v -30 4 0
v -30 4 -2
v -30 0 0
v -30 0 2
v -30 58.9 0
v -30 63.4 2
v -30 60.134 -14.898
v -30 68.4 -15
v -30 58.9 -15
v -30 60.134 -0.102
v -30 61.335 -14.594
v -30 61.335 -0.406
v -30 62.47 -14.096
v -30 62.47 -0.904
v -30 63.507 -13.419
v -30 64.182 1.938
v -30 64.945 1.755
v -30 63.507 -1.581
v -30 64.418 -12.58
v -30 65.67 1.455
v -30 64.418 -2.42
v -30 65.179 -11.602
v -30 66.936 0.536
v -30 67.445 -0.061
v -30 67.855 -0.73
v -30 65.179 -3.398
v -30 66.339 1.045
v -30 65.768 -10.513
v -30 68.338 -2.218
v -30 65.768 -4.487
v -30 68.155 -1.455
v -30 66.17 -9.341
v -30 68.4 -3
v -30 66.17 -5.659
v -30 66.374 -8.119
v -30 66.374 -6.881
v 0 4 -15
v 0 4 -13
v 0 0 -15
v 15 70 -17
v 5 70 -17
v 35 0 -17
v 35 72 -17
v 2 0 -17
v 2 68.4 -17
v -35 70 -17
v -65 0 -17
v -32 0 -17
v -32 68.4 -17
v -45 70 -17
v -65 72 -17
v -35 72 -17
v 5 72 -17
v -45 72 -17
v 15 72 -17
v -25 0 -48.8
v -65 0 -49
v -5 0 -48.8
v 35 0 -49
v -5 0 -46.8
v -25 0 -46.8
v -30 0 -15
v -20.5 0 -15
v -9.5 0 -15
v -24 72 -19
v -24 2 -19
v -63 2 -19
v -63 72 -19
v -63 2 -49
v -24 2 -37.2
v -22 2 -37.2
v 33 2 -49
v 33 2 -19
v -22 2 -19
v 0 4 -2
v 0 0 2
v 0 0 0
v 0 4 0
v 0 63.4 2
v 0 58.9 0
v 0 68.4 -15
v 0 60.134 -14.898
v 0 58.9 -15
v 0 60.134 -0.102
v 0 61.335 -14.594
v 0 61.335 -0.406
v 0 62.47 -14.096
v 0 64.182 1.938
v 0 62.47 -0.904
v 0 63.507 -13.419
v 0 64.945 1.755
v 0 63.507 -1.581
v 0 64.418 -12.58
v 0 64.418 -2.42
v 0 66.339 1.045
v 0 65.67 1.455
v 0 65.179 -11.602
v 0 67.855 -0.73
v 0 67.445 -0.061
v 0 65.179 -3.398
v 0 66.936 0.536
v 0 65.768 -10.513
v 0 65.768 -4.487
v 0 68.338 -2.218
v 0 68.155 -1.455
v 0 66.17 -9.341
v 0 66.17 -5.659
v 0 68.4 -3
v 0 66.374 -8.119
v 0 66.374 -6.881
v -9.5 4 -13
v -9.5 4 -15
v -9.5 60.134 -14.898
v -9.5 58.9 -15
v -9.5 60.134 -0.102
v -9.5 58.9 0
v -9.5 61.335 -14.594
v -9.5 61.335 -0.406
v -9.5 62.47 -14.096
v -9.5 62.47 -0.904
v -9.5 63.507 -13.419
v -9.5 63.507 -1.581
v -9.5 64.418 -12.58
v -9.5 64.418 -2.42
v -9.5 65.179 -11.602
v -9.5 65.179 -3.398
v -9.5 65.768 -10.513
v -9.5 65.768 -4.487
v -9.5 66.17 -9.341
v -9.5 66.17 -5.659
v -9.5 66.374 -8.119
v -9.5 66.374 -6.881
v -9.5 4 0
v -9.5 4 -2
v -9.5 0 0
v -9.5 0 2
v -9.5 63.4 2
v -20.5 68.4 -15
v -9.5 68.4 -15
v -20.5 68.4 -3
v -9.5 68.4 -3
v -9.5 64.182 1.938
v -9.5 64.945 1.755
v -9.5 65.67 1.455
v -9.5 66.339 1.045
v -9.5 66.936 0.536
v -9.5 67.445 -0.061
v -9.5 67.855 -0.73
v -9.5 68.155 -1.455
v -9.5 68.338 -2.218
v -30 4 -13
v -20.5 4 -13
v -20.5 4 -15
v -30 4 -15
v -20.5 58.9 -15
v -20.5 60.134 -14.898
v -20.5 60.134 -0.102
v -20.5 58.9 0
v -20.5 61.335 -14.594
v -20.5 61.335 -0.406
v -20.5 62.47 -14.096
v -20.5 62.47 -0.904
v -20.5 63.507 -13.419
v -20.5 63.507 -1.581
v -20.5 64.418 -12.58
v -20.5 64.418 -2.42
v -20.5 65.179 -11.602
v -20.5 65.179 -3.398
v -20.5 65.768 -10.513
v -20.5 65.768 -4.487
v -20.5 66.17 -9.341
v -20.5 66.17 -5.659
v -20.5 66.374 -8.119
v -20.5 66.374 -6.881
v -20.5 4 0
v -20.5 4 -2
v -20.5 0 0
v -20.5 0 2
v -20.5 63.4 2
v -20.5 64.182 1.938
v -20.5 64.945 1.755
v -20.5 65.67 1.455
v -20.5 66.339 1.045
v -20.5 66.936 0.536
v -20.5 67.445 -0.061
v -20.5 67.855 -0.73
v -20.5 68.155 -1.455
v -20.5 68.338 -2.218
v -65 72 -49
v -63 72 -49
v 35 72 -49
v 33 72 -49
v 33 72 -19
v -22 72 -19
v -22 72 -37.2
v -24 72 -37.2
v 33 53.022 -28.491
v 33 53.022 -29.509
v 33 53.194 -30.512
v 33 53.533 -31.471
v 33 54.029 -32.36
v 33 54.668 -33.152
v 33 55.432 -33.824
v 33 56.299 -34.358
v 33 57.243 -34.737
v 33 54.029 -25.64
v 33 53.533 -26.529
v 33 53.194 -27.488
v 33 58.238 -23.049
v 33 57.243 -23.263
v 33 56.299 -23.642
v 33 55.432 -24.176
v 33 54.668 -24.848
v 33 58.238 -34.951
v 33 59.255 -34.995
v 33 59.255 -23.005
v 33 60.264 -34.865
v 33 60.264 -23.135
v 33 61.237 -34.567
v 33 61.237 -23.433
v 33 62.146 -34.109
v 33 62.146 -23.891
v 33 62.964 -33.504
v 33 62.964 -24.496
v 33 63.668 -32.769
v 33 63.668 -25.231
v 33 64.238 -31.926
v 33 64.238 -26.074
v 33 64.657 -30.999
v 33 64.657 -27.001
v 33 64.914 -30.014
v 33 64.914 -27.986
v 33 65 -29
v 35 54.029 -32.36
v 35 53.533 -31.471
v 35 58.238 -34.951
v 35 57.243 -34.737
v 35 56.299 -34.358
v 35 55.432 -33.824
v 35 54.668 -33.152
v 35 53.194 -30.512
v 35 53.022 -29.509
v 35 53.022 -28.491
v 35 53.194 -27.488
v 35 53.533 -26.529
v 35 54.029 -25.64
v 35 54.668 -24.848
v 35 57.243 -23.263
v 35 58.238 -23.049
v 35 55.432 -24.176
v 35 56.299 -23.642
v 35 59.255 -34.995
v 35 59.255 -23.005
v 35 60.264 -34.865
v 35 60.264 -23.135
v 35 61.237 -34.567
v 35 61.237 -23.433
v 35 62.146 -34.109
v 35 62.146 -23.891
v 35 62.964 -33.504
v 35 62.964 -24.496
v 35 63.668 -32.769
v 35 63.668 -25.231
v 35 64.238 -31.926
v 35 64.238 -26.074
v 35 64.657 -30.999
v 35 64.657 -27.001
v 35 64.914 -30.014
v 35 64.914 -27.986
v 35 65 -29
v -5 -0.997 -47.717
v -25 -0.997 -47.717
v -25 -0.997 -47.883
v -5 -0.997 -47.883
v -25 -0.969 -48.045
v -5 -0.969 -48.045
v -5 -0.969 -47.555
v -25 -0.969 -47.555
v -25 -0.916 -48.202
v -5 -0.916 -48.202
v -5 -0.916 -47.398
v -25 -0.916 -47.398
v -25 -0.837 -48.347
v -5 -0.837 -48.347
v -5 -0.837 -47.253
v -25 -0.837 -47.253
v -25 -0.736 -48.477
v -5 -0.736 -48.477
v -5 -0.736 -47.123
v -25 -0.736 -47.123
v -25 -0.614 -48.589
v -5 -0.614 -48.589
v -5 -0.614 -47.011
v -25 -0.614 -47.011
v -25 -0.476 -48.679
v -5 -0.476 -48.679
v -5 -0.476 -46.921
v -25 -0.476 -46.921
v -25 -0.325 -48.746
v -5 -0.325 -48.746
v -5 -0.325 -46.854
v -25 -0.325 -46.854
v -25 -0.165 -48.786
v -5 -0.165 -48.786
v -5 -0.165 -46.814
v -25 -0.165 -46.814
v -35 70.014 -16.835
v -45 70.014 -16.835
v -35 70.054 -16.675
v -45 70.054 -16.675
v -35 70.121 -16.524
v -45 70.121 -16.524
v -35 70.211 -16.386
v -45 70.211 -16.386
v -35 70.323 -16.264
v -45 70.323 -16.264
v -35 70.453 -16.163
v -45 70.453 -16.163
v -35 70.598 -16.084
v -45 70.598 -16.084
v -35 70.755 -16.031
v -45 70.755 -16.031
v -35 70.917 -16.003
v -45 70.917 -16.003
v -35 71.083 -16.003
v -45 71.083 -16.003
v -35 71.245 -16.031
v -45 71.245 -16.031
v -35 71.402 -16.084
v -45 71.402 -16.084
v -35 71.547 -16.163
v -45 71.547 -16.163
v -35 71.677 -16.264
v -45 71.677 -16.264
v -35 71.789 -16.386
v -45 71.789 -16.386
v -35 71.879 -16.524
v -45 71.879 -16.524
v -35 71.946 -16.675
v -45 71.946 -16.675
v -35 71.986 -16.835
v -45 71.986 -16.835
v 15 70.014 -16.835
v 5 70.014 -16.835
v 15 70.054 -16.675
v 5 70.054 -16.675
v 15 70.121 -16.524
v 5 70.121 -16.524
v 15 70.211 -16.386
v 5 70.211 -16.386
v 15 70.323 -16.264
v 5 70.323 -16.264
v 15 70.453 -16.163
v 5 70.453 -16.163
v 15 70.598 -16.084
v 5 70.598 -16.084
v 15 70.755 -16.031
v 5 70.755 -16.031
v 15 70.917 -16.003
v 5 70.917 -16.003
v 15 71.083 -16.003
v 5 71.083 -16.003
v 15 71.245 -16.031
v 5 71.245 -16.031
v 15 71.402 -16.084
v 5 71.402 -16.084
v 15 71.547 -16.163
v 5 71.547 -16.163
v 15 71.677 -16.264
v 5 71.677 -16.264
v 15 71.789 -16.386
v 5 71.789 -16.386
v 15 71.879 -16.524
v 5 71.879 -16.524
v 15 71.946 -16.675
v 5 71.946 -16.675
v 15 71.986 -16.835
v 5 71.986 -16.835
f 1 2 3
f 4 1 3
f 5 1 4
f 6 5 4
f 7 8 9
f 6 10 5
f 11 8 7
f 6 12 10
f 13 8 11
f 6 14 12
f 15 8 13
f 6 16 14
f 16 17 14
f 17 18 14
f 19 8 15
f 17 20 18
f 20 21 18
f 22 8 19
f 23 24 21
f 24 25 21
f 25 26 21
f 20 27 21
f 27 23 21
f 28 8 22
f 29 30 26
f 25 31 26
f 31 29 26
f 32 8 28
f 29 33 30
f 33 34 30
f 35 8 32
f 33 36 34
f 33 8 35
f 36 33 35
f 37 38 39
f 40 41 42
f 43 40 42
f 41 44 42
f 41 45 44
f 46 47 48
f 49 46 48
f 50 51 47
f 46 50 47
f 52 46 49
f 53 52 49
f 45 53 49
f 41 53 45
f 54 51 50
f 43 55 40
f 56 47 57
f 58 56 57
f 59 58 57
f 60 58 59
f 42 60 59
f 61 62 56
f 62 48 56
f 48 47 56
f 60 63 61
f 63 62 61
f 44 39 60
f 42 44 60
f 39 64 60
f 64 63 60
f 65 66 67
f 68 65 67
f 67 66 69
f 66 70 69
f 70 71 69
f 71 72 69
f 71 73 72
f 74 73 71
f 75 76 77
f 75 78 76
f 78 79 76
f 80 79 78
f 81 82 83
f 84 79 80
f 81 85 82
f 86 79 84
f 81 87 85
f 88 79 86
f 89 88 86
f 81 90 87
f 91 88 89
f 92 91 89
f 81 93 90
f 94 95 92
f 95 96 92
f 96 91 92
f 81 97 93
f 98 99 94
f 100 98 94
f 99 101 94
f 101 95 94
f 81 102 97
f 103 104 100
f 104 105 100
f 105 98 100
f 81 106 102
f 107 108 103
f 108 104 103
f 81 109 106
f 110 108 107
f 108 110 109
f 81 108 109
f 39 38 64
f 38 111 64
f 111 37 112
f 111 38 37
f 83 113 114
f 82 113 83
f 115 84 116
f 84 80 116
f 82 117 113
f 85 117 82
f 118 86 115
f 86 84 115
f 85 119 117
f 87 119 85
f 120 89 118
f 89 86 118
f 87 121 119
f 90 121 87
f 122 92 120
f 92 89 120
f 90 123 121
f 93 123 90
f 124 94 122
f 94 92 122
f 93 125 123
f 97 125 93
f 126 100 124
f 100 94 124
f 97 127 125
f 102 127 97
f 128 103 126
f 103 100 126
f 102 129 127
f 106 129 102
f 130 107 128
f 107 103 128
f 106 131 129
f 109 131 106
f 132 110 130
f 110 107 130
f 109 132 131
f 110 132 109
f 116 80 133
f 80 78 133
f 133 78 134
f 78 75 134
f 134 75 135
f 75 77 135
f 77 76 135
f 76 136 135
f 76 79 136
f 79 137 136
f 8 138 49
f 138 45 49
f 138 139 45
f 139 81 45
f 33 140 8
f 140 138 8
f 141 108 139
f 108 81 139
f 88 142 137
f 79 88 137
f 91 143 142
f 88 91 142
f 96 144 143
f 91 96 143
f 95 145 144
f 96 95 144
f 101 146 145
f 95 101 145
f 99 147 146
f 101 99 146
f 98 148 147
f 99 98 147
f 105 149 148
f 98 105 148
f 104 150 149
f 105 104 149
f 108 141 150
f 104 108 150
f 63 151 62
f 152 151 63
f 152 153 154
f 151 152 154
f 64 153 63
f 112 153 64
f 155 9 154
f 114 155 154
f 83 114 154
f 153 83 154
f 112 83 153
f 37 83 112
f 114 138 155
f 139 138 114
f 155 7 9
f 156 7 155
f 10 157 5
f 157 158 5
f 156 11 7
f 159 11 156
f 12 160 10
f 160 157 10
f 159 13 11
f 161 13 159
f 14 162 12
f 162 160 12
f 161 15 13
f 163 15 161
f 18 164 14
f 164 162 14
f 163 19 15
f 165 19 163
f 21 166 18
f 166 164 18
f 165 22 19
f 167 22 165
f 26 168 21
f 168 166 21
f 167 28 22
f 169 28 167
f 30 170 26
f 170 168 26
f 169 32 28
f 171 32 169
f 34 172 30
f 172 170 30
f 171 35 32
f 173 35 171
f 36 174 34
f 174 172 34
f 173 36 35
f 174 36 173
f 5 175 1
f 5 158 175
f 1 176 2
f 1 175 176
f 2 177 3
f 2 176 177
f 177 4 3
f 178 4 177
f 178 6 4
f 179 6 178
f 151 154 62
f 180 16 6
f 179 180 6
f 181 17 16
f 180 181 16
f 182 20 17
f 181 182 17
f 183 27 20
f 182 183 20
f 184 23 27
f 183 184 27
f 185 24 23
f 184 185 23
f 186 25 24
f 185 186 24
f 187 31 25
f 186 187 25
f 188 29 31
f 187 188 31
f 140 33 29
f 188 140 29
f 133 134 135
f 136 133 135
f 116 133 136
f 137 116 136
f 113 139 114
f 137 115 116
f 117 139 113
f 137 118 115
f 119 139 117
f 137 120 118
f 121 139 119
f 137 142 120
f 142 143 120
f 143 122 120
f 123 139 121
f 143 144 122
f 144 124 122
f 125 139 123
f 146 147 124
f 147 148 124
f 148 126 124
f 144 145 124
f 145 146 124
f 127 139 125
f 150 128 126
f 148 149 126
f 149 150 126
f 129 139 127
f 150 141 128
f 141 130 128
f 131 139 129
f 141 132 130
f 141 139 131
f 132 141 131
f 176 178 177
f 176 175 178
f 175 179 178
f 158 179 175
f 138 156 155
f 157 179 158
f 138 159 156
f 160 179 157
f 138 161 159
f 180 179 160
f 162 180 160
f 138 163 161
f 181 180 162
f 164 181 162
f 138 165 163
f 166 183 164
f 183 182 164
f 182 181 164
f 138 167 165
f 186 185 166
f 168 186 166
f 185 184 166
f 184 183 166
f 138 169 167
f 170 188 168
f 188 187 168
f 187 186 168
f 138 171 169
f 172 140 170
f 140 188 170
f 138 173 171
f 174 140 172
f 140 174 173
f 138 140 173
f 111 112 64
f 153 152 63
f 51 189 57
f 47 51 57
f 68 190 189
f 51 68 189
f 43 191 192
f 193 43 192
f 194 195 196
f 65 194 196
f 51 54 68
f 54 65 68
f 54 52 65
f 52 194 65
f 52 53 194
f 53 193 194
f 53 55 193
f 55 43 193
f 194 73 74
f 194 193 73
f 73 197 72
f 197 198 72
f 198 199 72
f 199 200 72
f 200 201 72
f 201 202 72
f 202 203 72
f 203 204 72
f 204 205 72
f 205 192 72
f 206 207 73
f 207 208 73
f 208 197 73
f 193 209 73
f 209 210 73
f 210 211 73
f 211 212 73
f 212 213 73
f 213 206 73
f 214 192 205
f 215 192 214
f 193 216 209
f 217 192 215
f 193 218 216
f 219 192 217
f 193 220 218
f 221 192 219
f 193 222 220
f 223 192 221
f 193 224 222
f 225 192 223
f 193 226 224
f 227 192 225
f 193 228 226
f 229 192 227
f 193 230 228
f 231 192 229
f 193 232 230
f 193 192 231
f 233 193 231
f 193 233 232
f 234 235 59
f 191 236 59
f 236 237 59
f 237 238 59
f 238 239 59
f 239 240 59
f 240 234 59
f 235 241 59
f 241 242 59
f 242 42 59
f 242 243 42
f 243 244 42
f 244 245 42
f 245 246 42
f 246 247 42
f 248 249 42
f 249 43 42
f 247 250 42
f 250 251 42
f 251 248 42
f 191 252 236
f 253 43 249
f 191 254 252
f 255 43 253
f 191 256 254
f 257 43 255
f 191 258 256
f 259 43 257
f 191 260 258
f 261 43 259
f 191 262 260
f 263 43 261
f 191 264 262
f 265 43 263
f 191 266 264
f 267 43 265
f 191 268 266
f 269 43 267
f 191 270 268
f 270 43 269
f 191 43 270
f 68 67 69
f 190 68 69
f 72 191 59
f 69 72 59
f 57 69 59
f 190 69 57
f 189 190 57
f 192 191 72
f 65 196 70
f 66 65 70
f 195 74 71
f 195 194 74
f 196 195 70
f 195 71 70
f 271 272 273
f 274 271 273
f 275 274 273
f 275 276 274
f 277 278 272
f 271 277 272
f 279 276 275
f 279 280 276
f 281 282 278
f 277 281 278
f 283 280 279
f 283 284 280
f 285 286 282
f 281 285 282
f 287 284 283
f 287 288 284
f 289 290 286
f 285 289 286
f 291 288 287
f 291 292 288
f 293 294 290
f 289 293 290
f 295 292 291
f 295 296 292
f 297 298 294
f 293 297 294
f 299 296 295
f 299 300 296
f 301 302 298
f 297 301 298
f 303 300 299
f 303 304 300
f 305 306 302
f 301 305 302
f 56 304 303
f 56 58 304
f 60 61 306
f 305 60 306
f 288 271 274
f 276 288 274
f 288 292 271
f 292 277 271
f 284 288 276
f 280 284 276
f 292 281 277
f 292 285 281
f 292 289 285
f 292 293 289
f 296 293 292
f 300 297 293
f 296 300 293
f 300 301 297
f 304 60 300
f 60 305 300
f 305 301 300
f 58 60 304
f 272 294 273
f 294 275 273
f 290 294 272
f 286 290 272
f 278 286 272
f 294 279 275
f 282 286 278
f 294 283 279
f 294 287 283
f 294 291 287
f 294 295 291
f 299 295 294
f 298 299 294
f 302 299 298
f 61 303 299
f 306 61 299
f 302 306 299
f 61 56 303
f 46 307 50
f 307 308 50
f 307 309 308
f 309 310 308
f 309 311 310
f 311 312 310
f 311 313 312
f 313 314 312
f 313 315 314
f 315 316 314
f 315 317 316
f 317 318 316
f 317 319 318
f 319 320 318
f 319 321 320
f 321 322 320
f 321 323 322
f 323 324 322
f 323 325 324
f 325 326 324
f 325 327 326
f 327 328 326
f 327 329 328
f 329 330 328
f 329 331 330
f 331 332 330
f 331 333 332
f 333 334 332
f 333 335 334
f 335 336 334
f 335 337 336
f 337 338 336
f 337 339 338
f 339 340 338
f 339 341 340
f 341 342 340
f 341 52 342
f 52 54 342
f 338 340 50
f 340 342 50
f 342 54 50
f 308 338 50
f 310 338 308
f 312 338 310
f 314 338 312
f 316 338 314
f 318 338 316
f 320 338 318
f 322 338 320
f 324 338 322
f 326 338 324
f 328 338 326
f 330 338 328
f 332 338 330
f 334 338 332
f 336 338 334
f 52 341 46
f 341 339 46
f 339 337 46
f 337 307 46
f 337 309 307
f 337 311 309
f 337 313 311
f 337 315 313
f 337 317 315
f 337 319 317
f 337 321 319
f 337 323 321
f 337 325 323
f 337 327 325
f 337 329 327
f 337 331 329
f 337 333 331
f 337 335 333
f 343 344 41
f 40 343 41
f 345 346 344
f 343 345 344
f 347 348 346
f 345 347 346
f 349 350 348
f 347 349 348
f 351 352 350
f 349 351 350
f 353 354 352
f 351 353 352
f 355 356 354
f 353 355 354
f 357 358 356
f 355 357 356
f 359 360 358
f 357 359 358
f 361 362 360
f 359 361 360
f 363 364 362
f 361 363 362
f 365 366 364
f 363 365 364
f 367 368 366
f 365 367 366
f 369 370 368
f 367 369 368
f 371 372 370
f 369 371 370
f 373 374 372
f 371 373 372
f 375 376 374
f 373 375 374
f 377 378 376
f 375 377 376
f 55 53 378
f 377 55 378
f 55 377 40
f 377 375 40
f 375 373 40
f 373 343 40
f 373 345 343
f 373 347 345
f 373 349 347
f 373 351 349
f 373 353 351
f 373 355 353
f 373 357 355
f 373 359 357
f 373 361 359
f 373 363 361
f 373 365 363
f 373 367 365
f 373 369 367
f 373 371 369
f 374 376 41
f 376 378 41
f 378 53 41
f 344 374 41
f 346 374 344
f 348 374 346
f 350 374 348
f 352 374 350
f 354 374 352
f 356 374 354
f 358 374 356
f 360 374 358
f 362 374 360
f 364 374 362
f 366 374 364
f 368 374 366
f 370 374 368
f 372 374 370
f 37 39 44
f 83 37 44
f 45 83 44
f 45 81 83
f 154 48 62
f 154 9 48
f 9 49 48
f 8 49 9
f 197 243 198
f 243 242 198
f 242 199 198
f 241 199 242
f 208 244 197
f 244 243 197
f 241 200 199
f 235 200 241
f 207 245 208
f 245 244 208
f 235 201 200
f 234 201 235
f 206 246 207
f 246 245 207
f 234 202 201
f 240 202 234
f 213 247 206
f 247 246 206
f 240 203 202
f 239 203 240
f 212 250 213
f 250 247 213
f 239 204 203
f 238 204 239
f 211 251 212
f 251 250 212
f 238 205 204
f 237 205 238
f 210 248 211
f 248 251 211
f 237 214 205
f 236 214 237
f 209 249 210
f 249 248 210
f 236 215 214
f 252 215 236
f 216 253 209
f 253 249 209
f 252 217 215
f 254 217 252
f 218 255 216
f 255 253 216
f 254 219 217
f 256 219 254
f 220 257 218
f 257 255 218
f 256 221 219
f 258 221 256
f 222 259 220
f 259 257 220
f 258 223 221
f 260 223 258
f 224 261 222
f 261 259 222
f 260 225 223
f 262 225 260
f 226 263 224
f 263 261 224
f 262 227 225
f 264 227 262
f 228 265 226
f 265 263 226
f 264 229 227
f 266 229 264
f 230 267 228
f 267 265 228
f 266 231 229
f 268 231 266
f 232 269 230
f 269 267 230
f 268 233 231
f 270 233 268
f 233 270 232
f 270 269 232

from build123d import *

# Parameters (mm, degrees)
BOSS_EXTRUDE1_DEPTH      = 30
FILLET1_R                = 5
SKETCH2_W                = 11
SKETCH2_H                = 68.4
CUT_EXTRUDE1_DEPTH       = 17
BOSS_EXTRUDE3_DEPTH      = 2
BOSS_EXTRUDE4_DEPTH      = 32
SKETCH4_W                = 2
SKETCH4_H                = 70
BOSS_EXTRUDE5_DEPTH      = 18.2
BOSS_EXTRUDE6_DEPTH      = 10
BOSS_EXTRUDE6_DEPTH_BACK = 10
BOSS_EXTRUDE7_START      = 20
BOSS_EXTRUDE7_DEPTH      = 10
BOSS_EXTRUDE8_START      = -30
BOSS_EXTRUDE8_DEPTH      = 10
CHAMFER1_SIZE            = 2
CUT_EXTRUDE2_REACH       = 134.608
SKETCH6_R                = 6


with BuildPart() as part:
    # Sketch1 → Boss-Extrude1 (new body)
    with BuildSketch(Plane(origin=(0, 0, 0), x_dir=(0, 0, -1), z_dir=(1, 0, 0))):
        with BuildLine():
            ThreePointArc((-2, 58.9), (7.5, 68.4), (17, 58.9))
            Line((17, 58.9), (17, 0))
            Line((17, 0), (15, 0))
            Line((15, 0), (15, 58.9))
            ThreePointArc((15, 58.9), (7.5, 66.4), (0, 58.9))
            Line((0, 58.9), (0, 0))
            Line((0, 0), (-2, 0))
            Line((-2, 0), (-2, 58.9))
        make_face()
        with BuildLine():
            Line((-2, 0), (0, 0))
            Line((0, 0), (0, 4))
            Line((0, 4), (0, 58.9))
            ThreePointArc((0, 58.9), (2.196699141, 64.203300859), (7.5, 66.4))
            Line((7.5, 66.4), (7.5, 68.4))
            ThreePointArc((7.5, 68.4), (0.782485579, 65.617514421), (-2, 58.9))
            Line((-2, 58.9), (-2, 0))
        make_face()
        Polygon((0, 4), (0, 0), (2, 4), align=None)
        Polygon((15, 0), (15, 4), (13, 4), align=None)
        with BuildLine():
            Line((17, 68.4), (7.5, 68.4))
            ThreePointArc((7.5, 68.4), (14.217514421, 65.617514421), (17, 58.9))
            Line((17, 58.9), (17, 68.4))
        make_face()
        with BuildLine():
            Line((-2, 68.4), (-2, 58.9))
            ThreePointArc((-2, 58.9), (0.782485579, 65.617514421), (7.5, 68.4))
            Line((7.5, 68.4), (-2, 68.4))
        make_face()
    extrude(amount=-BOSS_EXTRUDE1_DEPTH)

    # Fillet1
    fillet1_edges = [part.edges().sort_by_distance(p)[0] for p in [
        (-15, 68.4, 2),
    ]]
    fillet(fillet1_edges, radius=FILLET1_R)

    # Sketch2 → Cut-Extrude1 (cut)
    with BuildSketch(Plane.XY.offset(2)):
        with Locations((-15, 34.2)):
            Rectangle(SKETCH2_W, SKETCH2_H)
    extrude(amount=-CUT_EXTRUDE1_DEPTH, mode=Mode.SUBTRACT)

    # Sketch3 → Boss-Extrude3 (add)
    with BuildSketch(Plane(origin=(0, 0, -17), x_dir=(-1, 0, 0), z_dir=(0, 0, -1))):
        Polygon((-33, 2), (0, 2), (0, 0), (65, 0), (65, 72), (-33, 72), align=None)
    extrude(amount=BOSS_EXTRUDE3_DEPTH)

    # Sketch3<3> → Boss-Extrude4 (add)
    with BuildSketch(Plane(origin=(0, 0, -17), x_dir=(-1, 0, 0), z_dir=(0, 0, -1))):
        Polygon((65, 72), (63, 72), (63, 2), (-33, 2), (-33, 72), (-35, 72), (-35, 0), (65, 0), align=None)
    extrude(amount=BOSS_EXTRUDE4_DEPTH)

    # Sketch4 → Boss-Extrude5 (add)
    with BuildSketch(Plane(origin=(0, 0, -19), x_dir=(-1, 0, 0), z_dir=(0, 0, -1))):
        with Locations((23, 37)):
            Rectangle(SKETCH4_W, SKETCH4_H)
    extrude(amount=BOSS_EXTRUDE5_DEPTH)

    # Sketch5 → Boss-Extrude6 (add, two sides: drawn at the far end of the back side and taken through both)
    with BuildSketch(Plane.ZY.offset(15).offset(-BOSS_EXTRUDE6_DEPTH_BACK)):
        with BuildLine():
            Line((-48.8, 0), (-46.8, 0))
            ThreePointArc((-46.8, 0), (-47.8, -1), (-48.8, 0))
        make_face()
    extrude(amount=BOSS_EXTRUDE6_DEPTH + BOSS_EXTRUDE6_DEPTH_BACK)

    # Sketch5<3> → Boss-Extrude7 (add)
    with BuildSketch(Plane.ZY.offset(15).offset(BOSS_EXTRUDE7_START)):
        with BuildLine():
            ThreePointArc((-17, 72), (-16, 71), (-17, 70))
            Line((-17, 70), (-17, 72))
        make_face()
    extrude(amount=BOSS_EXTRUDE7_DEPTH)

    # Sketch5<4> → Boss-Extrude8 (add)
    with BuildSketch(Plane.ZY.offset(15).offset(BOSS_EXTRUDE8_START)):
        with BuildLine():
            ThreePointArc((-17, 72), (-16, 71), (-17, 70))
            Line((-17, 70), (-17, 72))
        make_face()
    extrude(amount=BOSS_EXTRUDE8_DEPTH)

    # Chamfer1
    chamfer1_edges = [part.edges().sort_by_distance(p)[0] for p in [
        (-30, 34.2, -17),
        (0, 34.2, -17),
    ]]
    chamfer(chamfer1_edges, length=CHAMFER1_SIZE - 0.0001)  # a hair under: the kernel refuses the full size

    # Sketch6 → Cut-Extrude2 (cut, up to next)
    with BuildSketch(Plane(origin=(35, 0, 0), x_dir=(0, 0, -1), z_dir=(1, 0, 0)), mode=Mode.PRIVATE) as cut_extrude2_sk1:
        with Locations(Location((29, 59, 0), (0, 0, 90))):
            Circle(SKETCH6_R)
    cut_extrude2_tool1 = extrude(cut_extrude2_sk1.sketch, amount=-CUT_EXTRUDE2_REACH, mode=Mode.PRIVATE) & part.part
    add(cut_extrude2_tool1.solids().sort_by_distance((35, 59, -29))[0], mode=Mode.SUBTRACT)


solid = part.part
